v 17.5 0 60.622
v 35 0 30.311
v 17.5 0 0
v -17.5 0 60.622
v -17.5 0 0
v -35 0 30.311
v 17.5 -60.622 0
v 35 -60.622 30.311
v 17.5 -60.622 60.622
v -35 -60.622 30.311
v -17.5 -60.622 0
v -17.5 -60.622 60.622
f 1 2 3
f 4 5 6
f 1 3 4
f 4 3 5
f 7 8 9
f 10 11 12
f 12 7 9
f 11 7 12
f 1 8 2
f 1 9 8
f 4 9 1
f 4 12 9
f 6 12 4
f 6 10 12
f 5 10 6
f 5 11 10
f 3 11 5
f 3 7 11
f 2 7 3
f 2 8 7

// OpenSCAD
/* doodle-meta {"version":1,"parameters":{"hex_width":{"label":"Hexagon Width","description":"Distance across the flats of the hexagonal cross-section","unit":"mm","feature":"hex_width"},"prism_length":{"label":"Prism Length","description":"Length of the extruded hexagonal prism","unit":"mm","feature":"prism_length"}},"features":{"hex_width":{"kind":"dimension","axis":"x","label":"Hexagon Width"},"prism_length":{"kind":"dimension","axis":"y","label":"Prism Length"}}} */

// Parameters
hex_width = 60.62180652983459;
prism_length = 60.62180652983459;

// Derived parameters
// For a regular hexagon with distance across flats = hex_width,
// the circumradius (distance from center to vertex) is hex_width / sqrt(3)
hex_circumradius = hex_width / sqrt(3);

// Module for the hexagonal prism
module hex_prism() {
    // Create a regular hexagon in the XZ plane (front view)
    // The hexagon is centered at (0, 0) in XZ
    // Vertices are at angles 0, 60, 120, 180, 240, 300 degrees
    // We use rotate_extrude or polygon + linear_extrude
    
    // Define hexagon points in XZ plane (X is horizontal, Z is vertical)
    // Center at (0,0) in XZ
    // Radius is hex_circumradius
    // Points: (r*cos(theta), r*sin(theta)) in XZ where theta = 0, 60, ...
    // Note: In OpenSCAD polygon, points are [x, y]. We will map X->X, Z->Y for the polygon definition,
    // then rotate the extrusion.
    
    // Let's define the polygon in the XY plane first, then rotate it to XZ.
    // Or simpler: define points in XZ directly and use linear_extrude with convexity.
    
    // Hexagon vertices in XZ plane (centered at origin):
    // Angle 0: (r, 0) -> X=r, Z=0
    // Angle 60: (r*cos60, r*sin60) -> X=r/2, Z=r*sqrt(3)/2
    // Angle 120: (-r/2, r*sqrt(3)/2)
    // Angle 180: (-r, 0)
    // Angle 240: (-r/2, -r*sqrt(3)/2)
    // Angle 300: (r/2, -r*sqrt(3)/2)
    
    r = hex_circumradius;
    h = r * sqrt(3) / 2; // This is half the distance across flats? No.
    // Distance across flats = 2 * apothem. Apothem = r * cos(30) = r * sqrt(3)/2.
    // So width = 2 * r * sqrt(3)/2 = r * sqrt(3).
    // We set width = hex_width, so r = hex_width / sqrt(3). Correct.
    
    // Points in XZ plane:
    // We need to create a polygon in the XZ plane.
    // OpenSCAD polygon() takes [x, y] pairs. We will treat the second coordinate as Z.
    // Then we extrude along Y.
    
    points = [
        [r, 0],
        [r/2, h],
        [-r/2, h],
        [-r, 0],
        [-r/2, -h],
        [r/2, -h]
    ];
    
    // The polygon is defined in the XY plane by default.
    // We want it in the XZ plane.
    // So we rotate the polygon 90 degrees around X axis? 
    // No, if we define points [x, z], and extrude along Y, we need to rotate the polygon so its "normal" is Y.
    // Default polygon is in XY, normal Z. Extrude along Z.
    // We want normal Y. So rotate -90 around X? 
    // If we rotate -90 around X: Y becomes -Z, Z becomes Y.
    // Let's just define the polygon in XY and rotate the whole object.
    
    // Strategy:
    // 1. Create hexagon in XY plane (centered at 0,0).
    // 2. Extrude along Z by prism_length.
    // 3. Rotate 90 degrees around X to align extrusion axis with Y.
    // 4. Translate to sit on Z=0.
    
    // Hexagon in XY plane:
    // Vertices at angles 0, 60...
    // [r, 0], [r/2, r*sqrt(3)/2], ...
    
    hex_points = [
        [r, 0],
        [r/2, r*sqrt(3)/2],
        [-r/2, r*sqrt(3)/2],
        [-r, 0],
        [-r/2, -r*sqrt(3)/2],
        [r/2, -r*sqrt(3)/2]
    ];
    
    // Extrude along Z
    // Then rotate to align with Y axis (front view is XZ, so extrusion is along Y)
    // Rotate 90 deg around X: Z axis becomes Y axis.
    // Original Z (height) becomes Y (depth).
    // Original Y (width) becomes -Z (height).
    // Original X (width) stays X.
    
    // Wait, if we rotate 90 around X:
    // (x, y, z) -> (x, -z, y)
    // So the extrusion (originally along Z) is now along Y.
    // The hexagon (originally in XY) is now in XZ plane (since Y became -Z).
    // This matches the front view (XZ).
    
    // After rotation, the object is centered at origin.
    // We need to shift it so it sits on Z=0.
    // The hexagon has height (in Z direction after rotation) equal to the distance across flats?
    // Let's check.
    // Original hexagon in XY:
    // Y range: [-r*sqrt(3)/2, r*sqrt(3)/2].
    // After rotation (x, y, z) -> (x, -z, y):
    // New Z coordinate is old Y.
    // So Z range is [-r*sqrt(3)/2, r*sqrt(3)/2].
    // Height = r*sqrt(3) = hex_width.
    // So the hexagon spans Z from -hex_width/2 to +hex_width/2.
    // To sit on Z=0, we translate by +hex_width/2 in Z.
    
    // The extrusion length is along Y.
    // Original Z range: [0, prism_length] (if we start extrusion at 0).
    // After rotation, Y range is [0, prism_length].
    // So we don't need to translate in Y if we want it to start at Y=0?
    // The problem says "front geometry lies in XZ".
    // Usually, we center the object or place it conveniently.
    // "The part must sit on the build plate: lowest geometry at Z=0".
    // "Front geometry lies in XZ".
    
    // Let's center the hexagon in X and Z (before translation).
    // Then translate Z by hex_width/2.
    // For Y, let's center it or start at 0?
    // "front through-features cut along Y".
    // If we center the prism in Y, it goes from -prism_length/2 to +prism_length/2.
    // If we start at 0, it goes 0 to prism_length.
    // The spec doesn't strictly say where in Y it should be, but "front geometry lies in XZ" implies the face is at Y=0?
    // Or just that the view is XZ.
    // Let's center it in Y for symmetry, or place it at Y=0 to Y=prism_length.
    // Given "front view", usually the front face is at Y=0 or Y=-depth/2.
    // Let's center it in Y as well, then translate Y by prism_length/2?
    // Actually, let's just center the whole object at (0,0,0) then translate Z.
    
    // Step 1: Create hexagon in XY, extrude along Z.
    // Step 2: Rotate 90 around X.
    // Step 3: Translate to sit on Z=0.
    
    // Let's refine the rotation.
    // If I rotate 90 around X, the "top" of the hexagon (positive Y in XY) goes to negative Z.
    // So the hexagon is upside down?
    // Hexagon is symmetric, so it doesn't matter for shape, but for orientation.
    // The vertices are at 0, 60, 120...
    // Vertex at (r, 0) -> (r, 0, 0).
    // Vertex at (r/2, r*sqrt(3)/2) -> (r/2, -r*sqrt(3)/2, 0) in rotated coords?
    // Wait, rotation matrix for 90 deg around X:
    // x' = x
    // y' = -z
    // z' = y
    // So (x, y, z) -> (x, -z, y).
    // Point (r, 0, 0) -> (r, 0, 0).
    // Point (r/2, r*sqrt(3)/2, 0) -> (r/2, 0, r*sqrt(3)/2).
    // So the vertex that was at "top" (positive Y) is now at positive Z.
    // This is good.
    
    // The extrusion was along Z (0 to prism_length).
    // So z' = y (original).
    // Original z was 0 to prism_length.
    // So new y is 0 to prism_length.
    // So the prism extends from Y=0 to Y=prism_length.
    
    // The hexagon is in XZ plane.
    // X range: [-r, r].
    // Z range: [-r*sqrt(3)/2, r*sqrt(3)/2].
    // We want Z to start at 0.
    // So translate Z by +r*sqrt(3)/2.
    
    // Let's implement this.
    
    translate([0, 0, hex_width/2]) {
        rotate([90, 0, 0]) {
            linear_extrude(height=prism_length) {
                polygon(points=hex_points);
            }
        }
    }
}

// Instantiate the design
hex_prism();
